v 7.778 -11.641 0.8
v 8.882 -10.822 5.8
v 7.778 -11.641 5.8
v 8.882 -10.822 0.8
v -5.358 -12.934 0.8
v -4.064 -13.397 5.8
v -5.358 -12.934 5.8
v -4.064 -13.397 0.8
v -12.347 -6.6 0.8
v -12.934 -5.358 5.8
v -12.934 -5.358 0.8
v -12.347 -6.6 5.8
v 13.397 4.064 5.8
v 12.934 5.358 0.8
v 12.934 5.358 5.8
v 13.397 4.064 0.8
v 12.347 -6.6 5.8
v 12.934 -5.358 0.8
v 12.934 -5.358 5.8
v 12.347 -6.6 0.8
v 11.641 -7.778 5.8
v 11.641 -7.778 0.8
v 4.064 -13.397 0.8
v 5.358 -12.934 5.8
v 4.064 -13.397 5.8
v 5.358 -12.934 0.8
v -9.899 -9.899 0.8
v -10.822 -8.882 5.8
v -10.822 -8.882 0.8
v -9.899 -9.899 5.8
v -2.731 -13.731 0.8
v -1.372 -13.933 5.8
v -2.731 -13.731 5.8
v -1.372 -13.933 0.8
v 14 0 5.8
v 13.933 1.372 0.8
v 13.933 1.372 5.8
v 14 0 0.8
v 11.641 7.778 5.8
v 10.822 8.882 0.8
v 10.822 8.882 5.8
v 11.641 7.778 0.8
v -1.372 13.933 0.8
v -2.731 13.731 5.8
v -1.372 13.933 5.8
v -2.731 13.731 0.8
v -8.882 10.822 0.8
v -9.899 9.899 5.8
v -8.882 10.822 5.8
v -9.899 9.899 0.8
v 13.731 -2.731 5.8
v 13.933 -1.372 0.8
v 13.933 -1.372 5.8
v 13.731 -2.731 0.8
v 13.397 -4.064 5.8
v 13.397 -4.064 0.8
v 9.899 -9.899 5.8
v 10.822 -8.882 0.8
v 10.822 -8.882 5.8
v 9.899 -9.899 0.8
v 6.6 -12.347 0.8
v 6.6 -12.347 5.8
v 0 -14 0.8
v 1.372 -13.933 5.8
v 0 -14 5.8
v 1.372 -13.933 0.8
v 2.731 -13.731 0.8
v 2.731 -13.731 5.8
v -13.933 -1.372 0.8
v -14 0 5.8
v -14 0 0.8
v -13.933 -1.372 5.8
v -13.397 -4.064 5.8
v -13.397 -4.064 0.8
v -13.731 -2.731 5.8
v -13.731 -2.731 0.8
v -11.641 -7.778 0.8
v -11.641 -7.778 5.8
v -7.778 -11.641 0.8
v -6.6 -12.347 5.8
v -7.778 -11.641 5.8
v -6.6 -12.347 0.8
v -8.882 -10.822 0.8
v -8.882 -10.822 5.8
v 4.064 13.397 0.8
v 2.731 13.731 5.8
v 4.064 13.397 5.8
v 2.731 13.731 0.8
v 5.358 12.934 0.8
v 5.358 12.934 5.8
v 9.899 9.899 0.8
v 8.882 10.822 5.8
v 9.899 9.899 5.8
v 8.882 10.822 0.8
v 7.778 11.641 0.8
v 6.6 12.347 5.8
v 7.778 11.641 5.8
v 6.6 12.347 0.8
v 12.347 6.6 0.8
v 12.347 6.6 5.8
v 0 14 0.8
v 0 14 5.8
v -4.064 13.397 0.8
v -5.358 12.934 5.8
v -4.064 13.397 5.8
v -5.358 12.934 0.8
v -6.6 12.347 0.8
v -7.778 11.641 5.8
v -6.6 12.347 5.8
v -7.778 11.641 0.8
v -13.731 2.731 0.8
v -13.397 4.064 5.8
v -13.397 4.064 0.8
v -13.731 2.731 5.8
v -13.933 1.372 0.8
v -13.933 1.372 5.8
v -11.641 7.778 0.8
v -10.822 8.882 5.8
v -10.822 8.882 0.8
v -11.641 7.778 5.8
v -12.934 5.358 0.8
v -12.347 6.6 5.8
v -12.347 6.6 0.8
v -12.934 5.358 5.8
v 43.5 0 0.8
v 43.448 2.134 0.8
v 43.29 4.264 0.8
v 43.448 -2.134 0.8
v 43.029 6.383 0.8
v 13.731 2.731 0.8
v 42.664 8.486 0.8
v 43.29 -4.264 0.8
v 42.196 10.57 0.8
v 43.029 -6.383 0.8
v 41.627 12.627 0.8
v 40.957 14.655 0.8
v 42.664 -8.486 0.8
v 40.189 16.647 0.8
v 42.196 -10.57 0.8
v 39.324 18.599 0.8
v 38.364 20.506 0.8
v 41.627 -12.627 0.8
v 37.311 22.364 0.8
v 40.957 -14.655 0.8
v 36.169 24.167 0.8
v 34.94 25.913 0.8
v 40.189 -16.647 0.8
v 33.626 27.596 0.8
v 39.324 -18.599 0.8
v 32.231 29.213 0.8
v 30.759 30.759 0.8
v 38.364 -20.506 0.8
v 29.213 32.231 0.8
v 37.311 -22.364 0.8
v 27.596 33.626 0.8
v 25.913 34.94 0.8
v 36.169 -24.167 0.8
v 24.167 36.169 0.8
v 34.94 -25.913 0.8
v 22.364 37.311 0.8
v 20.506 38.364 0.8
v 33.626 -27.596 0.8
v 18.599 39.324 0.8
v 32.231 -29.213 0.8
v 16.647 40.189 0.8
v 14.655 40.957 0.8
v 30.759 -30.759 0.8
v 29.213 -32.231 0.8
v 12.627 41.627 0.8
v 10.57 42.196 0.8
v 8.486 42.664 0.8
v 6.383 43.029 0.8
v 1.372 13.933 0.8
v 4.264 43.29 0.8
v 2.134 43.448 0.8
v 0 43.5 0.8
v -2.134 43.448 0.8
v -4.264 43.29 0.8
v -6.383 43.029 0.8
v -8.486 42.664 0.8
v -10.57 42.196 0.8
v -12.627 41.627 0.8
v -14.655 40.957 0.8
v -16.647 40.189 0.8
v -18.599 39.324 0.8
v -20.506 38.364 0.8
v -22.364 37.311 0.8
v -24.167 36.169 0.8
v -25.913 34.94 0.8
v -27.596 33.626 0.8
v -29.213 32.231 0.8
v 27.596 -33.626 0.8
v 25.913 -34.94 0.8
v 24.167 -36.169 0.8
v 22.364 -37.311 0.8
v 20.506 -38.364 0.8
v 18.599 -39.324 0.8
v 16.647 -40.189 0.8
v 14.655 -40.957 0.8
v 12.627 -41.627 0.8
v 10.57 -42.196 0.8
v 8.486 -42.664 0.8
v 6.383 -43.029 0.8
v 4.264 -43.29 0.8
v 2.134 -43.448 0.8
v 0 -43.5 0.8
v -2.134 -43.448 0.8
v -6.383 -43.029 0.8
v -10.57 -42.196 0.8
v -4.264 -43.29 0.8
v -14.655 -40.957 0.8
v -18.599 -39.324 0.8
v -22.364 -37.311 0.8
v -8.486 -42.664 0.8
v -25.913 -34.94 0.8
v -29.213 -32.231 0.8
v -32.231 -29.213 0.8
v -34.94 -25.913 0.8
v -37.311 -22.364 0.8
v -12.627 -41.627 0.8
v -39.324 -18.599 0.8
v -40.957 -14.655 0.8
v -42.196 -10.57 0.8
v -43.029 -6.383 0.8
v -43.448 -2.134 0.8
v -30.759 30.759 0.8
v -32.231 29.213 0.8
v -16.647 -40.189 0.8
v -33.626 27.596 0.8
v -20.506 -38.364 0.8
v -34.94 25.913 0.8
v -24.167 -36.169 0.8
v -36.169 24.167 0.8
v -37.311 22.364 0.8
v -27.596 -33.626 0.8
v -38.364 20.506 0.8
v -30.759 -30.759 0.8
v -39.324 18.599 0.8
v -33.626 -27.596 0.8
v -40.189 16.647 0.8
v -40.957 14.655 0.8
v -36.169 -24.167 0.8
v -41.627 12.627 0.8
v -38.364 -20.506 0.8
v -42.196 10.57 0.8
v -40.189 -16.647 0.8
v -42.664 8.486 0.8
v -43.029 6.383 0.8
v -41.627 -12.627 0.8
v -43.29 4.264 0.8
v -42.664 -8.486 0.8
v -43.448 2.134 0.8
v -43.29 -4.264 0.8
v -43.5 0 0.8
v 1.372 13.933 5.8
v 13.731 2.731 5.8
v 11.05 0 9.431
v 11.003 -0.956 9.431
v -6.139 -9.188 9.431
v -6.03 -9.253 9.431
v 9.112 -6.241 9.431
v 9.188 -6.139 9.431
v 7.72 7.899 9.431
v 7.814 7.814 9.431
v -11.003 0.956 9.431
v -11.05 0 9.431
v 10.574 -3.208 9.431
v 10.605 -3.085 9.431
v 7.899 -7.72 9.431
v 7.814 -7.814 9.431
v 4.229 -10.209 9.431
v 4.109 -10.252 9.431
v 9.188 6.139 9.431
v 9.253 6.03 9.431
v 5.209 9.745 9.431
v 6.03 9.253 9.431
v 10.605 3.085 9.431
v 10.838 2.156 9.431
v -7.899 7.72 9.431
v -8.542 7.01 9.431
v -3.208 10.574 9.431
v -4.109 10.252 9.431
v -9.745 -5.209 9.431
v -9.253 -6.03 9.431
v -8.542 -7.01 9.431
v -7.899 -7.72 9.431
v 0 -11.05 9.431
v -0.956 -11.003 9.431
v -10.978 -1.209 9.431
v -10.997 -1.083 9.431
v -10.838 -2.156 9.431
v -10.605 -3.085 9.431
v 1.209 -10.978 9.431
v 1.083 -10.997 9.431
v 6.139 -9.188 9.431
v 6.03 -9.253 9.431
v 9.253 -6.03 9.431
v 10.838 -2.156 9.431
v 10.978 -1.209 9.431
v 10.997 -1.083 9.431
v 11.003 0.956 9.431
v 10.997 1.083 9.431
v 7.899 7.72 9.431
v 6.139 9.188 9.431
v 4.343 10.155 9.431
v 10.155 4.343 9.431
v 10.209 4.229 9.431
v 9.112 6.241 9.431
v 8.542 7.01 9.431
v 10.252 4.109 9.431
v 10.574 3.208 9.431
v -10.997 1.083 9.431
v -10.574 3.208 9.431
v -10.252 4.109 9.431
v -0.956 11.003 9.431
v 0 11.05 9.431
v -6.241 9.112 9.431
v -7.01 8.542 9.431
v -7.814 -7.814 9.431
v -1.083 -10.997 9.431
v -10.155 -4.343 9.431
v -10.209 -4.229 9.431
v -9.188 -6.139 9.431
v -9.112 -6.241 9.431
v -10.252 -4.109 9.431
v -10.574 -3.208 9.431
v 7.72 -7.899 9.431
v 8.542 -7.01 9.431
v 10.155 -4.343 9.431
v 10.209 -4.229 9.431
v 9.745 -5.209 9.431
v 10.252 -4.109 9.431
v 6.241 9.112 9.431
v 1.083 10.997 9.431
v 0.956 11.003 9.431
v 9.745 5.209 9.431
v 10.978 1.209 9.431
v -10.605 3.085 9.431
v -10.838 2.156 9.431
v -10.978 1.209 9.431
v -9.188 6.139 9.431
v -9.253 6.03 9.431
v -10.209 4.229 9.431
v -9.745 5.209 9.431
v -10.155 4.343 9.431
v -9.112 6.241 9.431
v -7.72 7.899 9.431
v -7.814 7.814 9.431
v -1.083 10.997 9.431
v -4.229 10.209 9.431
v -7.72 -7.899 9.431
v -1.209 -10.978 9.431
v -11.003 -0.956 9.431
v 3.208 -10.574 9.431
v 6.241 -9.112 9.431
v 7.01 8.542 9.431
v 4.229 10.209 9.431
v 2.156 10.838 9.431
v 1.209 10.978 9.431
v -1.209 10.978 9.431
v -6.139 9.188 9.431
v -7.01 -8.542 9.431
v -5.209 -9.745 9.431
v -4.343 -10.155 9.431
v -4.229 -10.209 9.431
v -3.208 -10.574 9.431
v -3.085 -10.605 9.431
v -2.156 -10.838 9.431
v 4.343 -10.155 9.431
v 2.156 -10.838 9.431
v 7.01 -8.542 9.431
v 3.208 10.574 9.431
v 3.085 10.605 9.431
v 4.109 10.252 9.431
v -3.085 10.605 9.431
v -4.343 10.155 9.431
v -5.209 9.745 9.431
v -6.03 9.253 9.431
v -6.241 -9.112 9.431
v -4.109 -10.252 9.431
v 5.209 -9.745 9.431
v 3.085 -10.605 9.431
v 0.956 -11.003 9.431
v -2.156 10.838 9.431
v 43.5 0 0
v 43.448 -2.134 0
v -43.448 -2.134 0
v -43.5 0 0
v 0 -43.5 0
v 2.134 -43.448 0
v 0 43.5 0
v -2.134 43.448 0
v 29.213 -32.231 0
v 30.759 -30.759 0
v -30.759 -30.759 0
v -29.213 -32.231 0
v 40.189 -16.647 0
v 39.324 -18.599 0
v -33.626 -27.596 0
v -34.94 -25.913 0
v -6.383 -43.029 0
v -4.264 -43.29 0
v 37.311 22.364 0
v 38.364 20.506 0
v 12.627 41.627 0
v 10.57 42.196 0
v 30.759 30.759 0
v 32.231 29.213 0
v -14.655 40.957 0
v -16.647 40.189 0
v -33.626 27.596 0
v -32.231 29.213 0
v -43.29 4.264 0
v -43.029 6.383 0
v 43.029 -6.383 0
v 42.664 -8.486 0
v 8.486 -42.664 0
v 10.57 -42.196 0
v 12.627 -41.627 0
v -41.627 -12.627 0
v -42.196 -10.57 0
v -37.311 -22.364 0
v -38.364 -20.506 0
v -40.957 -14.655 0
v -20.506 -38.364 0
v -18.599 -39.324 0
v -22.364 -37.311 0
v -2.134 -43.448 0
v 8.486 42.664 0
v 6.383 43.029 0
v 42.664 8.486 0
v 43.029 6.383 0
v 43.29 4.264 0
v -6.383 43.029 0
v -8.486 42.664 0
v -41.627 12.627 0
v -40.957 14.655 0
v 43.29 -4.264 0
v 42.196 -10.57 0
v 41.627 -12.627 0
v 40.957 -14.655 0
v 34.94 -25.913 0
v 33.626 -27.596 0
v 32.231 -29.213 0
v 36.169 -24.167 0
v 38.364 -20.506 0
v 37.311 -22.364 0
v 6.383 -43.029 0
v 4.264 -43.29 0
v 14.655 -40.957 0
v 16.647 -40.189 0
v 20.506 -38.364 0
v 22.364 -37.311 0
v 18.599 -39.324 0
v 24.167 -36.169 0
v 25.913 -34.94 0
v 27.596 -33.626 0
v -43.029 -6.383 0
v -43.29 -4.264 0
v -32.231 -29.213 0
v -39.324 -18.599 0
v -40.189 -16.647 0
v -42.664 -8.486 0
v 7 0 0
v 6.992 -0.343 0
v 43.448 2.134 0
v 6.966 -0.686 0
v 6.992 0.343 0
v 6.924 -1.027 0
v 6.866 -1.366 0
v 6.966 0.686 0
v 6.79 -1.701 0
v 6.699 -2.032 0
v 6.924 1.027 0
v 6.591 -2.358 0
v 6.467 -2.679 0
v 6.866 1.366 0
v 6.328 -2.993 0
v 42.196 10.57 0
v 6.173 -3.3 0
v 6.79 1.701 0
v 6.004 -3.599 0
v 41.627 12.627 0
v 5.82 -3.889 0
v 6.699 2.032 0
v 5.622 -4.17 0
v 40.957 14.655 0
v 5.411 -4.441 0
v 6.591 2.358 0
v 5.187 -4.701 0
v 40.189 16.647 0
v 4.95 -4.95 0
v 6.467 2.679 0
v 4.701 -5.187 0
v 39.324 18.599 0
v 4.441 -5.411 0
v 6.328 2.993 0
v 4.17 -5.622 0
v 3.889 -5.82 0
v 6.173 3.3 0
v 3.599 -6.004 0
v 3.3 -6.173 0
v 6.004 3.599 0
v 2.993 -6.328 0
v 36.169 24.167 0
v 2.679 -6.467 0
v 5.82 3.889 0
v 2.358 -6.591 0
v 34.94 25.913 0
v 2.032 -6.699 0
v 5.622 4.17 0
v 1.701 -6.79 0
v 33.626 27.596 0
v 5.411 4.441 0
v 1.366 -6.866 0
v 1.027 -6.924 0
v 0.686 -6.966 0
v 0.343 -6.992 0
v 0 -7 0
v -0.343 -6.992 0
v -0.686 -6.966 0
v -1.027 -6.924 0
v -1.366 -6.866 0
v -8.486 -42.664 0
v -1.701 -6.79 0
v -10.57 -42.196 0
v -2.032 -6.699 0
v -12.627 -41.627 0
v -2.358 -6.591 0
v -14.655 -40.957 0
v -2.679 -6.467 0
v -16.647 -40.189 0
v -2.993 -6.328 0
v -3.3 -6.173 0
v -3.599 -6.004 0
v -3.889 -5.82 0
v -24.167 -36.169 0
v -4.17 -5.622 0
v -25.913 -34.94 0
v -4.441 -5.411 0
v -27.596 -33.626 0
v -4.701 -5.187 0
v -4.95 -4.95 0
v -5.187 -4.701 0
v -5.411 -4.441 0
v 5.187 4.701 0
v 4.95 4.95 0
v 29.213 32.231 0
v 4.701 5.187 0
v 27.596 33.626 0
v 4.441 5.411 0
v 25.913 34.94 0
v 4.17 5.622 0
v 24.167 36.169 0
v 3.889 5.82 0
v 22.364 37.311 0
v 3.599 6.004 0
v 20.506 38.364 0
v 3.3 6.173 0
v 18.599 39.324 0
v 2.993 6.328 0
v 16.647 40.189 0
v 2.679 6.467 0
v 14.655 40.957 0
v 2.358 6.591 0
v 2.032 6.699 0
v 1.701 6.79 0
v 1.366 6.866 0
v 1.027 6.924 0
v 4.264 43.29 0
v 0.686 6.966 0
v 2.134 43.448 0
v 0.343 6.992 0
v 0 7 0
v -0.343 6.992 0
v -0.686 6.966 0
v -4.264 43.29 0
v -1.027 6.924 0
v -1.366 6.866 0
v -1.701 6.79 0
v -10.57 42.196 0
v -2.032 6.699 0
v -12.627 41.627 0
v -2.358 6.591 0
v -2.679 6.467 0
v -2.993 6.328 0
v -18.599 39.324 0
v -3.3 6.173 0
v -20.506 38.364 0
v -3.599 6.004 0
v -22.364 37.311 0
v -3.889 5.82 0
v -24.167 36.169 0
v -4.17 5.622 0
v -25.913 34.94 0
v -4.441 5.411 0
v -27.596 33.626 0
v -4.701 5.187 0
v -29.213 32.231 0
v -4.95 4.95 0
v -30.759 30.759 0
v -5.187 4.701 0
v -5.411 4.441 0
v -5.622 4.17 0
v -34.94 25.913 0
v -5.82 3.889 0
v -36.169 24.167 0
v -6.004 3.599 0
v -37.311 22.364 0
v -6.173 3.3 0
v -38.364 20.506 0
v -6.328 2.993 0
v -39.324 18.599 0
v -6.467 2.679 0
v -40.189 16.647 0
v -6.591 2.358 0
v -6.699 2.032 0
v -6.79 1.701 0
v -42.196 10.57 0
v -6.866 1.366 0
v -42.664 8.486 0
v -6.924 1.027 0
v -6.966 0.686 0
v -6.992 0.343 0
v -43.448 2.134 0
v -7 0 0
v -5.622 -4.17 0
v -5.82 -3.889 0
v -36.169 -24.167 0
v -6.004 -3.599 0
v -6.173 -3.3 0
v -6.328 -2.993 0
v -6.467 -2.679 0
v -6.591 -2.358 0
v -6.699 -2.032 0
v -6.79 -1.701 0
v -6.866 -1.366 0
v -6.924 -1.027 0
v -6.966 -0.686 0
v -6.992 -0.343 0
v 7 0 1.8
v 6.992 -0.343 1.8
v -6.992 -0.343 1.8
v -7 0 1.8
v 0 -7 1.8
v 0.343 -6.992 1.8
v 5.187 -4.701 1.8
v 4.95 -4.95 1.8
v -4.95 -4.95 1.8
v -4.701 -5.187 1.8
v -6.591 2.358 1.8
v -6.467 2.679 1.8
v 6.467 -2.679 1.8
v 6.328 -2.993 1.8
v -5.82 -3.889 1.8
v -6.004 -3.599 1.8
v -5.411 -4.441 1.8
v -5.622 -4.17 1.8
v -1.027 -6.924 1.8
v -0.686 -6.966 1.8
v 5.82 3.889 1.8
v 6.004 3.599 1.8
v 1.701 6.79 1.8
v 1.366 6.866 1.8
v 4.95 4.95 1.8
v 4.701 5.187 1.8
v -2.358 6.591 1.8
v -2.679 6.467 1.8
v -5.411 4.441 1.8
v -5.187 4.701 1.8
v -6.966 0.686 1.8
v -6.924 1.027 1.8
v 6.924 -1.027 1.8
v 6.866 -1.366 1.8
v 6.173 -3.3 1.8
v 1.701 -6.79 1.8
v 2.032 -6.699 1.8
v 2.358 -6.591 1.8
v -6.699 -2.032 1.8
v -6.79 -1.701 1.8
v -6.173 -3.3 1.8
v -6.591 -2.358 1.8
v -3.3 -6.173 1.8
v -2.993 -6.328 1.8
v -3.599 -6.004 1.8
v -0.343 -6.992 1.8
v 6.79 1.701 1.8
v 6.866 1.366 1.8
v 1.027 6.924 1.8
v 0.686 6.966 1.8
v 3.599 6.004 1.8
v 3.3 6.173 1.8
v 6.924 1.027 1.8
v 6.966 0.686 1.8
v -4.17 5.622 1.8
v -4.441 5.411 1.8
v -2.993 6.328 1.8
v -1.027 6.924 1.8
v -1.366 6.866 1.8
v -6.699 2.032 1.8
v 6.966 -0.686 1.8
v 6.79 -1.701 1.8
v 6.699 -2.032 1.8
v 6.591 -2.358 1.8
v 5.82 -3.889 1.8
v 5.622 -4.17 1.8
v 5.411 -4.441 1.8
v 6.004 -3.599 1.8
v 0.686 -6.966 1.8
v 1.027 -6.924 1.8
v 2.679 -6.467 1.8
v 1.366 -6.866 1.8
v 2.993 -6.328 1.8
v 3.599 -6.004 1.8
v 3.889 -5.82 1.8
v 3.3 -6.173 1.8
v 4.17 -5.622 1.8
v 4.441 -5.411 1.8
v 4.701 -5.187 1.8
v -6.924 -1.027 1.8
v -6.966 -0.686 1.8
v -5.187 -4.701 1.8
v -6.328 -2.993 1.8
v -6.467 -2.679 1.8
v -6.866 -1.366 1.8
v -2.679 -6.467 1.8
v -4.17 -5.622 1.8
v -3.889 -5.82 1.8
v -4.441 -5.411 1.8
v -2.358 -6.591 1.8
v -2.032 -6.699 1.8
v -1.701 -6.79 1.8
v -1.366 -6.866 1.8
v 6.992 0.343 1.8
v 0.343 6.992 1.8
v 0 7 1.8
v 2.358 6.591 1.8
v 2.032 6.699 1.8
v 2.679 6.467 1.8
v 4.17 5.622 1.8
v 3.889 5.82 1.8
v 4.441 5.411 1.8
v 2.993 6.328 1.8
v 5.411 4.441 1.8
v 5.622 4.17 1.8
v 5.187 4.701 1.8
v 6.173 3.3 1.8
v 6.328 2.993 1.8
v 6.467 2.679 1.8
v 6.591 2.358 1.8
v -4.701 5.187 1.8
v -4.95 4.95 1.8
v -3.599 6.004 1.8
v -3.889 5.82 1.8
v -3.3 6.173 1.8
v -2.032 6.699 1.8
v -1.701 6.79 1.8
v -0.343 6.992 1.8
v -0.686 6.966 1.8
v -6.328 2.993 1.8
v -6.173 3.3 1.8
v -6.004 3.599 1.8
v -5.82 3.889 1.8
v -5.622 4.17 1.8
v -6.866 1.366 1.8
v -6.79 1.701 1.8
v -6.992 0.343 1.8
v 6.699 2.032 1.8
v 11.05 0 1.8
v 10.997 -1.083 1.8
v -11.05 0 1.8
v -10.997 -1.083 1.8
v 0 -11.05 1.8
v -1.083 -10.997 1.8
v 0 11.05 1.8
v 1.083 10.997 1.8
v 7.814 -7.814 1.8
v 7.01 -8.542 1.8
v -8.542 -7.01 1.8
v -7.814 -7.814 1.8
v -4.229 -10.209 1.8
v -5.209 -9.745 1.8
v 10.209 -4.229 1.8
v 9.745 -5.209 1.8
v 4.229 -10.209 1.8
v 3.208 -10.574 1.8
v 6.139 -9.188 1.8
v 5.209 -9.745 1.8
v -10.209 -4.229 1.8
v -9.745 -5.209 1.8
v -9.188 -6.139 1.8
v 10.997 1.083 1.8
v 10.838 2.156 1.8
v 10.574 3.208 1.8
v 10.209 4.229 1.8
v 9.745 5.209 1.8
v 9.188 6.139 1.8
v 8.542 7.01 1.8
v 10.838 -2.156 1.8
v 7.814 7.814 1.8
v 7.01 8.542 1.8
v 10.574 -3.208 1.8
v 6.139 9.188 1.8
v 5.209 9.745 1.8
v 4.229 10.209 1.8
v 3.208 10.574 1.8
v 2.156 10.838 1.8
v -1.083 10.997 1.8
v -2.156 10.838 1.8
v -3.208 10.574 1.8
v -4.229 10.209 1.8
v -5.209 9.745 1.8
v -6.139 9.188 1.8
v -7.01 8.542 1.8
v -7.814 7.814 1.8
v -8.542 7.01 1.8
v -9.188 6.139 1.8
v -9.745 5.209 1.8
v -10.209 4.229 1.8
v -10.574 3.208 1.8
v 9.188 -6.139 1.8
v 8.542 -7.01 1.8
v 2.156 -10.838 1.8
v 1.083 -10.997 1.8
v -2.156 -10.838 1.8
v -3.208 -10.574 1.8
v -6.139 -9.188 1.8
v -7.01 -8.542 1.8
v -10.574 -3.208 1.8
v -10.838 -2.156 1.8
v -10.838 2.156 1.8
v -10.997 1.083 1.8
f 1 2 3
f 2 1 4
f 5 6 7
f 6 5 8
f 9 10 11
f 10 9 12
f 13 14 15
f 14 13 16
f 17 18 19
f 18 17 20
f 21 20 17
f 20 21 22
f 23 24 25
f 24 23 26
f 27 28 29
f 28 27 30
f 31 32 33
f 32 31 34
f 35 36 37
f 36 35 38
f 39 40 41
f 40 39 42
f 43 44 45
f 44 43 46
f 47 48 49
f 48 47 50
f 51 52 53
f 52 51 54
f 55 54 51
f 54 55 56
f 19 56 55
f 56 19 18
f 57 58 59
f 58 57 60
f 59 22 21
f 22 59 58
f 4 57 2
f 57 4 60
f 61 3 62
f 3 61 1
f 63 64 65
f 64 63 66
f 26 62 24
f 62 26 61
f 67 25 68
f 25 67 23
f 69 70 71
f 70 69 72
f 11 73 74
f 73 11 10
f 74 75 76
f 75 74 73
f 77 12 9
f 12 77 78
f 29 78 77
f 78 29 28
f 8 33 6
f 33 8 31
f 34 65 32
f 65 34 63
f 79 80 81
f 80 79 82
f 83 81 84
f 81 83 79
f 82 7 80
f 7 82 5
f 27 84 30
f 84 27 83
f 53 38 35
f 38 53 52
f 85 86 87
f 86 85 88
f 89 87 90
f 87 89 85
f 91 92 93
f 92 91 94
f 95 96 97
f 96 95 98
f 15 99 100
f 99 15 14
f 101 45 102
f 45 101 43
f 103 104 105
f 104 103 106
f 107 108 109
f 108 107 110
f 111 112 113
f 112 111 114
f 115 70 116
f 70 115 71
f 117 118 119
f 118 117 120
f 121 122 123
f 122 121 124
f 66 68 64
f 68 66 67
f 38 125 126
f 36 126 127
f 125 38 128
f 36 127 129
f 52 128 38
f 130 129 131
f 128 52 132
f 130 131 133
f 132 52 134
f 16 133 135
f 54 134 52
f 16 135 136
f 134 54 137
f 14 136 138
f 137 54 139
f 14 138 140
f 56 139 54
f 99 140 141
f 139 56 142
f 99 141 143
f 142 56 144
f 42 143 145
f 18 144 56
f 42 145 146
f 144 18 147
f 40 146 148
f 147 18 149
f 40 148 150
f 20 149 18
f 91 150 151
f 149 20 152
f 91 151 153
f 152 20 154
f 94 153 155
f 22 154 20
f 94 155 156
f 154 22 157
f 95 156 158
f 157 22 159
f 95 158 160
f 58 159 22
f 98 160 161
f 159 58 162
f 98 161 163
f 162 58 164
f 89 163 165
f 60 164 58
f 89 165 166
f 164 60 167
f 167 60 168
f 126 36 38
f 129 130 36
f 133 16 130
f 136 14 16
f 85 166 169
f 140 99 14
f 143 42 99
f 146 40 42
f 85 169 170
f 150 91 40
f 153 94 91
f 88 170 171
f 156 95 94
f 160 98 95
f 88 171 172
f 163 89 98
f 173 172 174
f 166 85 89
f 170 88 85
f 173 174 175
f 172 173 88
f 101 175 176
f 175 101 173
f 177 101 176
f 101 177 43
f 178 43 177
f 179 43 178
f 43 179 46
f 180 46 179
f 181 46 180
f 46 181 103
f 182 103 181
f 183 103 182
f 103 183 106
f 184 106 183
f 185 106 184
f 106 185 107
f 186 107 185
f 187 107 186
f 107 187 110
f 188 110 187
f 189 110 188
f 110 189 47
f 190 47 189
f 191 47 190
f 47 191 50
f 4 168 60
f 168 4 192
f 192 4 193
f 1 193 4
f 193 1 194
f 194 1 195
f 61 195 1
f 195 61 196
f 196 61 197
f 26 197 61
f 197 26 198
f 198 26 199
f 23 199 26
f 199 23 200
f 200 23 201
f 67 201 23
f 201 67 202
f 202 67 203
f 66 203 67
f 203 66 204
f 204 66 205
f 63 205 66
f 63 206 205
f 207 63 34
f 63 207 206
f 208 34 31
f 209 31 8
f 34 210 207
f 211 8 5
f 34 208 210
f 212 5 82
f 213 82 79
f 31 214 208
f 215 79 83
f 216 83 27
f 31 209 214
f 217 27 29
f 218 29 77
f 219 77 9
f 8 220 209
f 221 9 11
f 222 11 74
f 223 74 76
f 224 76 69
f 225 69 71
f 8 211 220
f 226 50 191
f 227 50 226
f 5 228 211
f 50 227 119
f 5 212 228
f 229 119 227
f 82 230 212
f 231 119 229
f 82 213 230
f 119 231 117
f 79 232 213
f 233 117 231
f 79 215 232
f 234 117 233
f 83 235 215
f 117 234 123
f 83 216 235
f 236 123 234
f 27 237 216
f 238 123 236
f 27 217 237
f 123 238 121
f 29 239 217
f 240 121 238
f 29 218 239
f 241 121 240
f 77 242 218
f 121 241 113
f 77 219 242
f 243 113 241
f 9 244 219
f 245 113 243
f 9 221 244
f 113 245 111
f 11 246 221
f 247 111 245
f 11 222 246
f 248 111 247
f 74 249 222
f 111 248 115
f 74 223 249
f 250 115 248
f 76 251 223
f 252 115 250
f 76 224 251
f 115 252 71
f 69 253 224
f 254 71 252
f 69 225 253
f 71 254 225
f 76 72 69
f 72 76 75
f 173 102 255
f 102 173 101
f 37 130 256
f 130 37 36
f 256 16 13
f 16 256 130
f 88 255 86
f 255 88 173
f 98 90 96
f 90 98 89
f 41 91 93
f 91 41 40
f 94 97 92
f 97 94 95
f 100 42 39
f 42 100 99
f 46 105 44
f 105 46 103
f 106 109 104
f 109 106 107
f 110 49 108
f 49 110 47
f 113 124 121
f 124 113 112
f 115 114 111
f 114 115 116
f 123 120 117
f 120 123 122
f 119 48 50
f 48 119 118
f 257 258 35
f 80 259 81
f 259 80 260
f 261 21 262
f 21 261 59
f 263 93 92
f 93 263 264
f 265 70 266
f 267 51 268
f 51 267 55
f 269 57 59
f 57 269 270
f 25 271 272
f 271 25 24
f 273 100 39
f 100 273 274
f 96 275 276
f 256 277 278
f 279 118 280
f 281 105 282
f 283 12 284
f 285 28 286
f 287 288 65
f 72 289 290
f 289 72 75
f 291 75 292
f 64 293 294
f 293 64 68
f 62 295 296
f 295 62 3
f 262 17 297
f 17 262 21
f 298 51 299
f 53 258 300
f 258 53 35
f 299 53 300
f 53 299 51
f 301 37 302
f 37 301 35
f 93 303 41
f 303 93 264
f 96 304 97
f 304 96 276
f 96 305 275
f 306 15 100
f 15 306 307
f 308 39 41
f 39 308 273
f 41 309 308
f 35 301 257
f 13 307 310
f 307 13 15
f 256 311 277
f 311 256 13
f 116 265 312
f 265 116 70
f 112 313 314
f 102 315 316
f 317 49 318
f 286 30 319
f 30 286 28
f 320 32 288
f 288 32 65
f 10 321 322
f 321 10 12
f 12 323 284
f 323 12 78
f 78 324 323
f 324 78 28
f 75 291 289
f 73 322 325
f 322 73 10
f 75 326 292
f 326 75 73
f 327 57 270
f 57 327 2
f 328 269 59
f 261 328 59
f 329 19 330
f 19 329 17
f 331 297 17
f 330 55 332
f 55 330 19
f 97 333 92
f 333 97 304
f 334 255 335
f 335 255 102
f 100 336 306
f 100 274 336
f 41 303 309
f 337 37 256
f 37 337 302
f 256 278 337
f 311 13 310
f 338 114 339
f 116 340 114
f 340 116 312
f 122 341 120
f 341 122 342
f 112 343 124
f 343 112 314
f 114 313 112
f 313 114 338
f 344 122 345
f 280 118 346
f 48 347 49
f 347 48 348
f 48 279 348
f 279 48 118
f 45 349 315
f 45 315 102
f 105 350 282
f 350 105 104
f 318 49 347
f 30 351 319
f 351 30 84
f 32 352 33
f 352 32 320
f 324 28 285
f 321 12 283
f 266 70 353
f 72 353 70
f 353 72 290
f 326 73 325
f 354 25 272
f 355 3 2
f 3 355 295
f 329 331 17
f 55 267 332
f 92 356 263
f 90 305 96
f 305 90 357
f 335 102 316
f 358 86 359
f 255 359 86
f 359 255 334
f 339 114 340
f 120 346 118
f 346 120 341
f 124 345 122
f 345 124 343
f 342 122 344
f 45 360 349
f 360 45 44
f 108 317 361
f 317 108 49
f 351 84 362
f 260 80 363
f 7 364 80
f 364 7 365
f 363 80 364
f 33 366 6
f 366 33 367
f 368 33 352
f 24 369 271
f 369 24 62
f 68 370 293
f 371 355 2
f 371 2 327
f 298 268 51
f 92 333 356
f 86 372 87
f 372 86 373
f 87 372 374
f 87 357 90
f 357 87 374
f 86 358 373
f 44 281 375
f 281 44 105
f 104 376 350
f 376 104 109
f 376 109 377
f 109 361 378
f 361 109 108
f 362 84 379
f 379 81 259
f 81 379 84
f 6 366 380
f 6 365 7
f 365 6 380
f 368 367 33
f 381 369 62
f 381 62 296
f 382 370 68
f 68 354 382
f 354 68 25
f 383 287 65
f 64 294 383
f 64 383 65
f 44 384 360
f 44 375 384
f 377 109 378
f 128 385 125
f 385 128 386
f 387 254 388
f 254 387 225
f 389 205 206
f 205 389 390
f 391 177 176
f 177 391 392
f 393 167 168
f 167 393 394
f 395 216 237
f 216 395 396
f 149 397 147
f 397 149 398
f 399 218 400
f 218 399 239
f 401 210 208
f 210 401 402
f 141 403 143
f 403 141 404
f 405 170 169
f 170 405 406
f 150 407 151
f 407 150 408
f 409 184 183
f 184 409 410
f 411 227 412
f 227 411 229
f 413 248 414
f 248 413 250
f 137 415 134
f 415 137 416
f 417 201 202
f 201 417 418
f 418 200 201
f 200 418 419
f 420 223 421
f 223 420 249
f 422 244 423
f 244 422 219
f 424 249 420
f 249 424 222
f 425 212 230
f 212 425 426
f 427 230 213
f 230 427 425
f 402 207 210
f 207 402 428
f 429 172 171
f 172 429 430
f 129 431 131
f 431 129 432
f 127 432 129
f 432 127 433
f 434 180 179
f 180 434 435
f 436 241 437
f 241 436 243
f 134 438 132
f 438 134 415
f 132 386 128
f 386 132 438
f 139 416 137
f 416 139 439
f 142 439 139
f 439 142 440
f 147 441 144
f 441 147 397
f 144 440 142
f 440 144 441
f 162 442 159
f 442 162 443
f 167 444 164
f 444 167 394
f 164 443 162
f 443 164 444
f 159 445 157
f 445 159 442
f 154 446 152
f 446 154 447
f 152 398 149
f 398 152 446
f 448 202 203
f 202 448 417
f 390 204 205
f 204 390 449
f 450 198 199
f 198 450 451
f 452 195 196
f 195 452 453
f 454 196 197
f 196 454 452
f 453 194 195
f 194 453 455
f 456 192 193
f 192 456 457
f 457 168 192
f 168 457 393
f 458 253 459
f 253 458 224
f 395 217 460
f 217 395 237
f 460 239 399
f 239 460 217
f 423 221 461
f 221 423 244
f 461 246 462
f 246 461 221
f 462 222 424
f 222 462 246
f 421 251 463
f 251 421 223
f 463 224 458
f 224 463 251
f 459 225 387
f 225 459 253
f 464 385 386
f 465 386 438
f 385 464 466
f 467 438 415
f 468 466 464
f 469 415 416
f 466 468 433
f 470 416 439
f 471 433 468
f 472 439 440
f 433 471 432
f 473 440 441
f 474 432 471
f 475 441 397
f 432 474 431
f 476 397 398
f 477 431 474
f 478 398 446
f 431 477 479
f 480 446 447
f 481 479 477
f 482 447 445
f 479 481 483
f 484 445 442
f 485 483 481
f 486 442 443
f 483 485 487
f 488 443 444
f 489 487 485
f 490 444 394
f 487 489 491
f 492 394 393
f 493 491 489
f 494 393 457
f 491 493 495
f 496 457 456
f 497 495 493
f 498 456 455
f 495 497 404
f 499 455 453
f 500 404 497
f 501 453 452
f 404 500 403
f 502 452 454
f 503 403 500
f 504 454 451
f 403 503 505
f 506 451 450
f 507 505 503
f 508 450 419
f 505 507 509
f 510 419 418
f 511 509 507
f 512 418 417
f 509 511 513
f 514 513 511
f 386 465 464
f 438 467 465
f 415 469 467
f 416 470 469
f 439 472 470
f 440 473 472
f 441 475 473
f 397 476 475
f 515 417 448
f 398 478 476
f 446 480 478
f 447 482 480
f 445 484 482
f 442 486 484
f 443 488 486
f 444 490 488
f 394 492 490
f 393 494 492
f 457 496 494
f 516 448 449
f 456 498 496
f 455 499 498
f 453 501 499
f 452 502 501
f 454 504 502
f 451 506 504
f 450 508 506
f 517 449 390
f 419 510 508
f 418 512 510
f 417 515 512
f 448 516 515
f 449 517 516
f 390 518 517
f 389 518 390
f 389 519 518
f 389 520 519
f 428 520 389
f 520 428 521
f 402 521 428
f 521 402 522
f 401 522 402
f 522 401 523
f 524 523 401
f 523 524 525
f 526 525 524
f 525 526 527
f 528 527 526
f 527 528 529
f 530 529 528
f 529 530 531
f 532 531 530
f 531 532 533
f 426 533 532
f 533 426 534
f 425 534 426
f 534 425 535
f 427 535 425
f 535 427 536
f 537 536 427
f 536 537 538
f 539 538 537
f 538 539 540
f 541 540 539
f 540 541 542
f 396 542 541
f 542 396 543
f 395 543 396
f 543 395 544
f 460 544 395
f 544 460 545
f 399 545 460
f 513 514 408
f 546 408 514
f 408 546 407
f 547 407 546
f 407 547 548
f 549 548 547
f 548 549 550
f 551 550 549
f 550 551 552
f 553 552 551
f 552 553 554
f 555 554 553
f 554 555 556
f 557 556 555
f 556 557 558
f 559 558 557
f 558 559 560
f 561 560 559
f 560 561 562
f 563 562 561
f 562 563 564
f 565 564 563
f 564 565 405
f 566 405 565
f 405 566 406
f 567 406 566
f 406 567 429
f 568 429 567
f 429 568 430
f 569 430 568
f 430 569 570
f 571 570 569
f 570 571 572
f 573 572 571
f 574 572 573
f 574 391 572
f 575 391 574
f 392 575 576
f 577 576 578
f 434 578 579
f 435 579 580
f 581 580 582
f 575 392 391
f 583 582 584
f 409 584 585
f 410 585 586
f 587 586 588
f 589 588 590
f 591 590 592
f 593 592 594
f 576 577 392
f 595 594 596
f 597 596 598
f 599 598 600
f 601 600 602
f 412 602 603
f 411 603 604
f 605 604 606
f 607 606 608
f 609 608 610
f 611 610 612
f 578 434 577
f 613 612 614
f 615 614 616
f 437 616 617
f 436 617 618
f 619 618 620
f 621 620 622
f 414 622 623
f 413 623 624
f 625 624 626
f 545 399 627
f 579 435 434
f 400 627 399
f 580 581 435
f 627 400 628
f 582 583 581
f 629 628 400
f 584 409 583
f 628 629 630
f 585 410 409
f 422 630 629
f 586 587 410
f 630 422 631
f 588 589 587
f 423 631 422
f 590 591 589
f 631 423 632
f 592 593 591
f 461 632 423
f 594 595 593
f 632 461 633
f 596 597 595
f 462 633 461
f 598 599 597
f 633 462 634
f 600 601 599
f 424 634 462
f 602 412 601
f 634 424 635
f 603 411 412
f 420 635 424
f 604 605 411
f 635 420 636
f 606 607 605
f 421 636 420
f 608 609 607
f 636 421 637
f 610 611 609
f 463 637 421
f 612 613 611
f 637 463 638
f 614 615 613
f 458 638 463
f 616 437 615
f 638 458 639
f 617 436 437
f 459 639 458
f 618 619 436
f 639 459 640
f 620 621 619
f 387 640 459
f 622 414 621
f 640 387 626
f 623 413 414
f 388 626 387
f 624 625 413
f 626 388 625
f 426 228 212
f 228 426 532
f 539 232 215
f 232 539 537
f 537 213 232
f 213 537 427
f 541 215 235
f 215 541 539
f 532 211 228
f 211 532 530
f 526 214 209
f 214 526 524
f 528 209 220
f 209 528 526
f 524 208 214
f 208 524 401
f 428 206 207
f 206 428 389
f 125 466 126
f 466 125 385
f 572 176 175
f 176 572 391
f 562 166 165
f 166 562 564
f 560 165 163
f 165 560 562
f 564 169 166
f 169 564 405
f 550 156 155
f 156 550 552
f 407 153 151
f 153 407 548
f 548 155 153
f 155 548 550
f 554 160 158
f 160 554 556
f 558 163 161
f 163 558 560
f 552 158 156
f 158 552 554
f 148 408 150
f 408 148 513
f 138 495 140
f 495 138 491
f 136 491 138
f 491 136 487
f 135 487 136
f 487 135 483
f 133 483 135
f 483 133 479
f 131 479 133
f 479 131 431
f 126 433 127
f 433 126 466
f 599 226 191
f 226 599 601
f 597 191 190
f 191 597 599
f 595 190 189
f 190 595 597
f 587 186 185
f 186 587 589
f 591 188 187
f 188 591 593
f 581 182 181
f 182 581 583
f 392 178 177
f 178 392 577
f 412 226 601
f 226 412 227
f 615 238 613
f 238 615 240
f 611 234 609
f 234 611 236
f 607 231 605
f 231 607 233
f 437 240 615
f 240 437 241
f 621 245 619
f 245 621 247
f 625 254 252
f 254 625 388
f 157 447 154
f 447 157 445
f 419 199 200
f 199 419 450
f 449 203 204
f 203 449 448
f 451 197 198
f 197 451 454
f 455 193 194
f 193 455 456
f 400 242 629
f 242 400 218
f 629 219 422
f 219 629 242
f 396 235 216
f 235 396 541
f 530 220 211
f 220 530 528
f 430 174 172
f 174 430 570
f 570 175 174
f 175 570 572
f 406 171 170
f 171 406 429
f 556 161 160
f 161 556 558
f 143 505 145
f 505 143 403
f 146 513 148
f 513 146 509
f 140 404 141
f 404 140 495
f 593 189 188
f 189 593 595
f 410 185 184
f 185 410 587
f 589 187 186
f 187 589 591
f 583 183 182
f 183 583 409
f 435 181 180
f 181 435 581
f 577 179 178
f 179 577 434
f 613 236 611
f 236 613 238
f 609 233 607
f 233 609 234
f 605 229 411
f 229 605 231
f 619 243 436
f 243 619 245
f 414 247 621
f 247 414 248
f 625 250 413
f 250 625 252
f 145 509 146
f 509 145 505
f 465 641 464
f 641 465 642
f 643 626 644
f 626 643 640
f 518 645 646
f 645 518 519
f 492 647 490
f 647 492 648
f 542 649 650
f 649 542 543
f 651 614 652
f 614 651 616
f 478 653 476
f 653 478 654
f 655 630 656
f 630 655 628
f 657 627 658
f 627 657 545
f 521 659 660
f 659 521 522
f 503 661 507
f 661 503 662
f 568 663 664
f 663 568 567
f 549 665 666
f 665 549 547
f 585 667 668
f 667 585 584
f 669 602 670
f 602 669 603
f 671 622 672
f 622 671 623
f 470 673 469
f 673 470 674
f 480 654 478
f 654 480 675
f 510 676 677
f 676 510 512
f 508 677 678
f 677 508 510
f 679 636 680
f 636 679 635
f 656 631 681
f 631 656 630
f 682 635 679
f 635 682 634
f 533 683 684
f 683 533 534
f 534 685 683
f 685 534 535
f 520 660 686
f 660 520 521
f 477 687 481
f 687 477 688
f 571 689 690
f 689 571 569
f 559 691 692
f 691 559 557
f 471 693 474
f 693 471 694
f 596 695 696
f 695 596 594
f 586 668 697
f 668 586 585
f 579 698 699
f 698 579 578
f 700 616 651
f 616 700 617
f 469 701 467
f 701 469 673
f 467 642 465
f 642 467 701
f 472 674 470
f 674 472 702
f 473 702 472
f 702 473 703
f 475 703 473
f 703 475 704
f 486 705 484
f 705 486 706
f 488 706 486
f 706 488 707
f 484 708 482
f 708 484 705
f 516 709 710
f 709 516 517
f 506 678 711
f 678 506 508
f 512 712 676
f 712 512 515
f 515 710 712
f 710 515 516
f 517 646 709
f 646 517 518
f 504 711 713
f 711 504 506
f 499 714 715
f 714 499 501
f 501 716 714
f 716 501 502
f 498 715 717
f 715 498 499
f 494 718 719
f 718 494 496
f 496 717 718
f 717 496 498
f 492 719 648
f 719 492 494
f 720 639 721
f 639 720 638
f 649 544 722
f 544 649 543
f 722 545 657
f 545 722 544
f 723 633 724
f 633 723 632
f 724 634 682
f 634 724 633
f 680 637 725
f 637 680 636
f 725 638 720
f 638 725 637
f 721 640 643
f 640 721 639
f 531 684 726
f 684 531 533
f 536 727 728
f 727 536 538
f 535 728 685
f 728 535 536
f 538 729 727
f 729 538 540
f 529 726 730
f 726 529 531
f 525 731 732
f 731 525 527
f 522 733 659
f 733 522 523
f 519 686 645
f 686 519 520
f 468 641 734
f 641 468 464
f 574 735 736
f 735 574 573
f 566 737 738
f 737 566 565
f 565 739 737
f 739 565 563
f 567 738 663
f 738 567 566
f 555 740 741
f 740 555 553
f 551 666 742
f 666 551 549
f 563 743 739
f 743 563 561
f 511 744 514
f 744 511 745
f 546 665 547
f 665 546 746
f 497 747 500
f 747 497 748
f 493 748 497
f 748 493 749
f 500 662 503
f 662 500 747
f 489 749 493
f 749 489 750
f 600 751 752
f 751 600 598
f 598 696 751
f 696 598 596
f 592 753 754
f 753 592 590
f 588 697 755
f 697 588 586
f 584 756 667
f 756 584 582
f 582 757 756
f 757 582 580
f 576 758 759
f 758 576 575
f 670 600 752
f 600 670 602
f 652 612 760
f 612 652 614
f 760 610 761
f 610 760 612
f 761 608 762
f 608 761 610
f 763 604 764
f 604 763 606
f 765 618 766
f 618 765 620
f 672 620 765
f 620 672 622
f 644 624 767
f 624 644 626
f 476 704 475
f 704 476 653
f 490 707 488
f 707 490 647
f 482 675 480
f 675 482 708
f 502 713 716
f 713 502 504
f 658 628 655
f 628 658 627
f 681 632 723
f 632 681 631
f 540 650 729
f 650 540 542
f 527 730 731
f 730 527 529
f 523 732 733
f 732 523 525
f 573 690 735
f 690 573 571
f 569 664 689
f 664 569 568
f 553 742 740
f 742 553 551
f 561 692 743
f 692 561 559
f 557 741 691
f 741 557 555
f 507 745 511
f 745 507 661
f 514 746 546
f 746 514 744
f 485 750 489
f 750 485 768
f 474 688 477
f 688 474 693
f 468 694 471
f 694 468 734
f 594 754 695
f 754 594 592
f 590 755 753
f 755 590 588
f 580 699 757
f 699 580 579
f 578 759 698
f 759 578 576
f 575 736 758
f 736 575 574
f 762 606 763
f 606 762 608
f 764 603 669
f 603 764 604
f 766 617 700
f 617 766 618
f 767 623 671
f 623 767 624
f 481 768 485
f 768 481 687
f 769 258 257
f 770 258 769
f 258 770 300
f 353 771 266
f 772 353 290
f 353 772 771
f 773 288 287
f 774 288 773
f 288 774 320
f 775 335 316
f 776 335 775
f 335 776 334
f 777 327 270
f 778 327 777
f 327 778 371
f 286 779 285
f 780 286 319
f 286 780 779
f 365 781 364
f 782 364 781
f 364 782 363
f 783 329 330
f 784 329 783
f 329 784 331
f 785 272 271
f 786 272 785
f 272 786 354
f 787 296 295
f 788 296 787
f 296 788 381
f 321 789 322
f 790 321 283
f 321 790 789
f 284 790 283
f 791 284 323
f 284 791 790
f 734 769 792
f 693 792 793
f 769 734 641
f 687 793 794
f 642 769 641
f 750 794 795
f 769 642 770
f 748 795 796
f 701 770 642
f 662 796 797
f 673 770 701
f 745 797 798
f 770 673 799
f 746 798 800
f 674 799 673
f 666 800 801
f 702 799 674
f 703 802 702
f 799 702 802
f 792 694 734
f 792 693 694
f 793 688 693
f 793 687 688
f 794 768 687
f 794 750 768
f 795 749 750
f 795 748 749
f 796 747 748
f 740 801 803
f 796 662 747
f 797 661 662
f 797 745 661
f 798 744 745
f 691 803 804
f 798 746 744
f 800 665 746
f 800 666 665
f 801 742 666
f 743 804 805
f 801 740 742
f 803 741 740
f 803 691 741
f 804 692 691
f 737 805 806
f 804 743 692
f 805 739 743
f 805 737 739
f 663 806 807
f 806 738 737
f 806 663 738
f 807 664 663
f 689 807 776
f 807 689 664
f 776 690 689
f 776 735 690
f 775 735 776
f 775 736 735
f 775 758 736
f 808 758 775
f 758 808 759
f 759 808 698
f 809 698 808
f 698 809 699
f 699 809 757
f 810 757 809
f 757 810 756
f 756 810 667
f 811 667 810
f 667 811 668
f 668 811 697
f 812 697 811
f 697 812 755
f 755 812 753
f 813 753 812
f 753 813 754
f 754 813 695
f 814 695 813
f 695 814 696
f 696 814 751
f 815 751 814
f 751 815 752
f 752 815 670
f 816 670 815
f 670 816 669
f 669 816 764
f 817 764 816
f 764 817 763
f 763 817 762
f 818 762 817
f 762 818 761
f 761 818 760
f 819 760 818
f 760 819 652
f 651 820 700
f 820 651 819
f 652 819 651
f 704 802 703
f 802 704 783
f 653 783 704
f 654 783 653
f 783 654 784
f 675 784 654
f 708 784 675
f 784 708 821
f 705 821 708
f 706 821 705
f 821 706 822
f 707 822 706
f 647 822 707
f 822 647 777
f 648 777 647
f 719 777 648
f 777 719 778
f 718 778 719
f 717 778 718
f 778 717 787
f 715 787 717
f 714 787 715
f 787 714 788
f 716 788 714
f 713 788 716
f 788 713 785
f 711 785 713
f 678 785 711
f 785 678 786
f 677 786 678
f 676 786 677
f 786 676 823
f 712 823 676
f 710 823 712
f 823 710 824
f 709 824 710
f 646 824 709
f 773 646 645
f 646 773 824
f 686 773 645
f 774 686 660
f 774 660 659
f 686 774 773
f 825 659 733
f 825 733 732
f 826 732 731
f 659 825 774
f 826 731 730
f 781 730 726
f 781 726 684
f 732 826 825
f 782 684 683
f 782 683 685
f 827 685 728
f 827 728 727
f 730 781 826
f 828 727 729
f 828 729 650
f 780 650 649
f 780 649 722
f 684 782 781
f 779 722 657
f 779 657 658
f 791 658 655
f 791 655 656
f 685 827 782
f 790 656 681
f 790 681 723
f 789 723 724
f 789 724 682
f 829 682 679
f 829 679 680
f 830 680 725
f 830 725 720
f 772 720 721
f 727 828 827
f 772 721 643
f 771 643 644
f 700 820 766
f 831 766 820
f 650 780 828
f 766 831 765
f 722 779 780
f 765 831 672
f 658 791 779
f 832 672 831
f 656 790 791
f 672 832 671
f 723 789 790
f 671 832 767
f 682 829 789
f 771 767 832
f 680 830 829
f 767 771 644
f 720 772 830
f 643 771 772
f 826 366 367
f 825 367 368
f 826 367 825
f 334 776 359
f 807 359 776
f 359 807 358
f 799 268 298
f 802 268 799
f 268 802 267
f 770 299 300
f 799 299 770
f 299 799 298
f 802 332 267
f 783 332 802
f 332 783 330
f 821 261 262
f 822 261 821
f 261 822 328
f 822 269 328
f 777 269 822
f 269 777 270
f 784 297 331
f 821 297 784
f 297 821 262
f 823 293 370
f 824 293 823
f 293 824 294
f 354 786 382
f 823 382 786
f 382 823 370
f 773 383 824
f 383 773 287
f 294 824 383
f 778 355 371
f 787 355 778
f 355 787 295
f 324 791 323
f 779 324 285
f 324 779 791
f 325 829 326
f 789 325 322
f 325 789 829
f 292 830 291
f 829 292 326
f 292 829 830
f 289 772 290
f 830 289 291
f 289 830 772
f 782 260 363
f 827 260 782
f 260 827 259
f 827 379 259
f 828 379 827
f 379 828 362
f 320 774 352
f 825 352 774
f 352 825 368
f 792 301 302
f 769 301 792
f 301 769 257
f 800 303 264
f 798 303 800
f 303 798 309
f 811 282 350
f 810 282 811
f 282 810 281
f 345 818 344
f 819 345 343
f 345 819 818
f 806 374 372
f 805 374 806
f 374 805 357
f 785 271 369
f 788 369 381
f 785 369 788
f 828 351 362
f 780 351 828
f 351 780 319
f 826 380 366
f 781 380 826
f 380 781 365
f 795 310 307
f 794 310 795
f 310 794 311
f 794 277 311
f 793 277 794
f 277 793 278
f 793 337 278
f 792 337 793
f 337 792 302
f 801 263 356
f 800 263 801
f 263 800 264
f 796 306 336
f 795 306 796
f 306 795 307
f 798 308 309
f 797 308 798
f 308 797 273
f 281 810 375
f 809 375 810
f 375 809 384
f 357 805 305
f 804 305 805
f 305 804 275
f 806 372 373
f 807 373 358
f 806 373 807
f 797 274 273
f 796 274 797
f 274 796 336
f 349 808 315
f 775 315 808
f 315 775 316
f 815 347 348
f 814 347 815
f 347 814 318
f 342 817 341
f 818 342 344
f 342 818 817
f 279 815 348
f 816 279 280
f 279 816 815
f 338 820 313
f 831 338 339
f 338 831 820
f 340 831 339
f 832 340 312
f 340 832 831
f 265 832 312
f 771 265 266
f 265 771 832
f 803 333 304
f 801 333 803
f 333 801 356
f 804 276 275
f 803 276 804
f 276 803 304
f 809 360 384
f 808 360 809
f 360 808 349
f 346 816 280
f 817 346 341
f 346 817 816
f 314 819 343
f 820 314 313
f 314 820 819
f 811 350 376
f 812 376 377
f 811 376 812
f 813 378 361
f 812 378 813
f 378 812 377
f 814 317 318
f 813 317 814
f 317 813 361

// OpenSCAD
// file: turntable.scad
tolerance = 0.05;

component_tray_dia = 182;
component_tray_height = 8.6;
component_tray_inner_idia = 39.8;
component_tray_inner_odia = 116.6;
component_tray_inner_thk = 2;
component_tray_hole_dia = 29.6;
component_tray_stopper_hole_dia=5;

component_pocket_idia = 121;
component_pocket_odia = 179;
component_pocket_length = 29;
component_pocket_depth = 8.1;
component_pocket_angle = 8;

component_bearing_idia = 25;
component_bearing_odia = 37;
component_bearing_height = 6;

parts_outer_dia = 126;
parts_inner_dia = 90;
parts_border = 3;
parts_hole_dia = 14;
parts_thk = 1.6;
parts_border_thk = 2;
parts_bearing_holder_dia = 28;
parts_bearing_holder_height = 4;
parts_bearing_holder_thk = 3.20;

part_bearing_idia = 8;
part_bearing_odia = 22;
part_bearing_height = 7;

base_height = 17;
base_outer_dia = component_tray_dia + 8;
base_outerloop_odia = component_tray_dia + 4;
base_outerloop_idia = base_outerloop_odia - 46;
base_sector_angle = 45;

cover_something_width = 15;
cover_thk = 3;

base_innerloop_odia = 50;
base_outerloop_thk = 3;
base_innerloop_thk = base_outerloop_thk;

module sector(h, d, a1, a2) {
    if (a2 - a1 > 180) {
        difference() {
            cylinder(h=h, d=d,$fn=256);
            translate([0,0,-0.5]) sector(h+1, d+1, a2-360, a1); 
        }
    } else {
        difference() {
            cylinder(h=h, d=d,$fn=256);
            rotate([0,0,a1]) translate([-d/2, -d/2, -0.5])
                cube([d, d/2, h+1]);
            rotate([0,0,a2]) translate([-d/2, 0, -0.5])
                cube([d, d/2, h+1]);
        }
    }
}    

module base() {
    difference() {
        union() {
            cylinder( d=base_innerloop_odia, h=base_innerloop_thk, $fn=128 );
            for( a=[0:90:360] )
                rotate([0,0,a] )
                    translate([0,base_outerloop_idia/4 + base_innerloop_odia/4,1.1])
                        cube( size=[15,(base_outerloop_idia - base_innerloop_odia)/2 + 4,2.2],center=true );

            difference() {
                cylinder( d=base_outerloop_odia+1, h=base_innerloop_thk, $fn=256 );
                translate([0,0,-1])
                cylinder( d=base_outerloop_idia, h=base_innerloop_thk+2, $fn=256 );
            }

            difference() {
                cylinder( d=base_outer_dia, h=base_height, $fn=256 );
                translate([0,0,base_height-cover_thk])
                   cylinder( d=base_outerloop_odia, h=cover_thk+2, $fn=256 );
                translate([0,0,base_height-cover_thk-4])
                    cylinder( d2=component_tray_dia+1,d1=base_outerloop_odia,h=5,$fn=256 );
                translate([0,0,-1])
                   cylinder( d=base_outerloop_odia, h=base_height-cover_thk-2, $fn=256 );
                for( a=[0:90:360] )
                    rotate([0,0,a] )
                        translate([0,base_outer_dia/4+base_outerloop_odia/4,base_height-cover_thk/2+1])
                        cube( size=[cover_something_width,(base_outer_dia-base_outerloop_odia)/2+4,cover_thk+2],center=true );
            }
            
            cylinder( d=part_bearing_odia+4,h=base_innerloop_thk+7.2-component_bearing_height,$fn=64 );
            cylinder( d=part_bearing_odia-2*tolerance,h=base_innerloop_thk+6.6,$fn=64 );
            cylinder( d=part_bearing_idia+3,h=base_innerloop_thk+15-part_bearing_height,$fn=64 );
            cylinder( d=part_bearing_idia-2*tolerance,h=base_innerloop_thk+13.6,$fn=64 );
        }

        difference() {
            translate([0,0,-1])
            sector( base_height+2,    base_outer_dia+4,(90-base_sector_angle)/2,(90+base_sector_angle)/2);
            translate([0,0,-2])
            sector( base_height+4,    base_outer_dia-10,(90-base_sector_angle)/2-10,(90+base_sector_angle)/2+10);
        }
    }
}

module component_pocket()
{
    hull() {
        difference() {
            translate( [0,(component_pocket_length-component_pocket_odia)/2,component_pocket_depth-4.2] )
                cylinder( d=component_pocket_odia,h=4.2,$fn=256 );
            translate( [0,(-component_pocket_idia-component_pocket_length)/2,component_pocket_depth-5.2] )
                cylinder( d=component_pocket_idia,h=6.2,$fn=256 );
            for( i=[-1,1] ) 
                translate([i*component_pocket_odia/2,-component_pocket_odia/2,0]) 
                    rotate( [0,0,-i*4] )
                        cube( size=[component_pocket_odia, component_pocket_odia*2, component_pocket_depth*2 + 4], center=true );
            
        }
        difference() {
            translate( [0,7,0.5] )
                cube( size=[20,10.7,1],center=true );
            for( i=[-1,1] ) 
                translate([i*component_pocket_odia/2,-component_pocket_odia/2,0]) 
                    rotate( [0,0,-i*3] )
                        cube( size=[component_pocket_odia, component_pocket_odia*2, 2*(component_pocket_depth-4.2 )], center=true );
        }
    }
}

module component_tray()
{
    difference() {
        cylinder( d=component_tray_dia, h=component_tray_height, $fn=256 );
        difference() {
            translate( [0,0,component_tray_inner_thk] )
                cylinder( d=component_tray_inner_odia, h=component_tray_height, $fn=128 );
            cylinder( d=component_tray_inner_idia, h=component_tray_height+component_tray_inner_thk+2, $fn=128 );
        }
        translate( [0,0,-1] )
            cylinder( d=component_tray_hole_dia, h=component_tray_height+2, $fn=64 );
        translate( [0,0,-2] )
            cylinder( d=component_bearing_odia+2*tolerance, h=component_tray_height, $fn=64 );
        translate( [0,70,-1] )
            cylinder( d=component_tray_stopper_hole_dia, h=component_tray_height+2, $fn=32 );
        translate( [0,81.7,-1] )
            cylinder( d=component_tray_stopper_hole_dia, h=component_tray_height+2, $fn=32 );
        for( a=[10:10:350] ) 
            rotate( [0,0,a] )
                translate( [0,(component_pocket_idia+component_pocket_odia)/4,component_tray_inner_thk] )
                    component_pocket();
            
        
    }
}

/*
     part 1 - single parts tray
          2 - two modules maint part
          3 - two modeles bearing part
*/

module parts_tray(hole=1,part=1)
{
    difference() {
        union() {
            if( part != 3 )
                cylinder( d=parts_outer_dia, h=parts_thk+parts_border_thk,$fn=128 );
            else 
                cylinder( d=parts_inner_dia-parts_border, h=parts_thk/2,$fn=128 );
                
            if( part != 2 ) {
                holder_height = parts_bearing_holder_height + ( part == 3 ? parts_border_thk / 2:0);
                translate( [0,0,-holder_height] )
                    cylinder( d=parts_bearing_holder_dia, h=holder_height,$fn=64 );
                translate( [0,0,-holder_height-4] )
                    cylinder( d2=parts_bearing_holder_dia, d1=part_bearing_odia-0.5, h=4,$fn=64 );
            }
        }
        if( part == 2 )
            translate( [0,0,-1] )
                cylinder( d=parts_bearing_holder_dia, h=parts_thk+2,$fn=64 );
            
        difference() {
            translate( [0,0,parts_thk] )
                cylinder( d=parts_outer_dia-parts_border, h=parts_thk+parts_border_thk,$fn=128 );
            translate( [0,0,parts_thk-1] )
                cylinder( d=parts_inner_dia, h=parts_thk+parts_border_thk+2,$fn=128 );
        }
        translate( [0,0,parts_thk - (part!=2 ? 0 : parts_thk/2)] )
            cylinder( d=parts_inner_dia-parts_border, h=parts_thk+parts_border_thk,$fn=128 );
        if( hole ) 
            translate( [0,0,-2] )
                cylinder( d=parts_hole_dia, h=parts_thk+parts_border_thk+4,$fn=128 );

        if( part != 2 ) 
            translate( [0,0,-parts_bearing_holder_height-5-( part == 3 ? parts_border_thk / 2:0)] )
                cylinder( d=part_bearing_odia+2*tolerance, h=5+parts_bearing_holder_height,$fn=64 );

    }
}
// main file
include <turntable.scad>

translate( [0,0,parts_thk/2] )
    rotate([180,0,0])
        parts_tray(1,3);
